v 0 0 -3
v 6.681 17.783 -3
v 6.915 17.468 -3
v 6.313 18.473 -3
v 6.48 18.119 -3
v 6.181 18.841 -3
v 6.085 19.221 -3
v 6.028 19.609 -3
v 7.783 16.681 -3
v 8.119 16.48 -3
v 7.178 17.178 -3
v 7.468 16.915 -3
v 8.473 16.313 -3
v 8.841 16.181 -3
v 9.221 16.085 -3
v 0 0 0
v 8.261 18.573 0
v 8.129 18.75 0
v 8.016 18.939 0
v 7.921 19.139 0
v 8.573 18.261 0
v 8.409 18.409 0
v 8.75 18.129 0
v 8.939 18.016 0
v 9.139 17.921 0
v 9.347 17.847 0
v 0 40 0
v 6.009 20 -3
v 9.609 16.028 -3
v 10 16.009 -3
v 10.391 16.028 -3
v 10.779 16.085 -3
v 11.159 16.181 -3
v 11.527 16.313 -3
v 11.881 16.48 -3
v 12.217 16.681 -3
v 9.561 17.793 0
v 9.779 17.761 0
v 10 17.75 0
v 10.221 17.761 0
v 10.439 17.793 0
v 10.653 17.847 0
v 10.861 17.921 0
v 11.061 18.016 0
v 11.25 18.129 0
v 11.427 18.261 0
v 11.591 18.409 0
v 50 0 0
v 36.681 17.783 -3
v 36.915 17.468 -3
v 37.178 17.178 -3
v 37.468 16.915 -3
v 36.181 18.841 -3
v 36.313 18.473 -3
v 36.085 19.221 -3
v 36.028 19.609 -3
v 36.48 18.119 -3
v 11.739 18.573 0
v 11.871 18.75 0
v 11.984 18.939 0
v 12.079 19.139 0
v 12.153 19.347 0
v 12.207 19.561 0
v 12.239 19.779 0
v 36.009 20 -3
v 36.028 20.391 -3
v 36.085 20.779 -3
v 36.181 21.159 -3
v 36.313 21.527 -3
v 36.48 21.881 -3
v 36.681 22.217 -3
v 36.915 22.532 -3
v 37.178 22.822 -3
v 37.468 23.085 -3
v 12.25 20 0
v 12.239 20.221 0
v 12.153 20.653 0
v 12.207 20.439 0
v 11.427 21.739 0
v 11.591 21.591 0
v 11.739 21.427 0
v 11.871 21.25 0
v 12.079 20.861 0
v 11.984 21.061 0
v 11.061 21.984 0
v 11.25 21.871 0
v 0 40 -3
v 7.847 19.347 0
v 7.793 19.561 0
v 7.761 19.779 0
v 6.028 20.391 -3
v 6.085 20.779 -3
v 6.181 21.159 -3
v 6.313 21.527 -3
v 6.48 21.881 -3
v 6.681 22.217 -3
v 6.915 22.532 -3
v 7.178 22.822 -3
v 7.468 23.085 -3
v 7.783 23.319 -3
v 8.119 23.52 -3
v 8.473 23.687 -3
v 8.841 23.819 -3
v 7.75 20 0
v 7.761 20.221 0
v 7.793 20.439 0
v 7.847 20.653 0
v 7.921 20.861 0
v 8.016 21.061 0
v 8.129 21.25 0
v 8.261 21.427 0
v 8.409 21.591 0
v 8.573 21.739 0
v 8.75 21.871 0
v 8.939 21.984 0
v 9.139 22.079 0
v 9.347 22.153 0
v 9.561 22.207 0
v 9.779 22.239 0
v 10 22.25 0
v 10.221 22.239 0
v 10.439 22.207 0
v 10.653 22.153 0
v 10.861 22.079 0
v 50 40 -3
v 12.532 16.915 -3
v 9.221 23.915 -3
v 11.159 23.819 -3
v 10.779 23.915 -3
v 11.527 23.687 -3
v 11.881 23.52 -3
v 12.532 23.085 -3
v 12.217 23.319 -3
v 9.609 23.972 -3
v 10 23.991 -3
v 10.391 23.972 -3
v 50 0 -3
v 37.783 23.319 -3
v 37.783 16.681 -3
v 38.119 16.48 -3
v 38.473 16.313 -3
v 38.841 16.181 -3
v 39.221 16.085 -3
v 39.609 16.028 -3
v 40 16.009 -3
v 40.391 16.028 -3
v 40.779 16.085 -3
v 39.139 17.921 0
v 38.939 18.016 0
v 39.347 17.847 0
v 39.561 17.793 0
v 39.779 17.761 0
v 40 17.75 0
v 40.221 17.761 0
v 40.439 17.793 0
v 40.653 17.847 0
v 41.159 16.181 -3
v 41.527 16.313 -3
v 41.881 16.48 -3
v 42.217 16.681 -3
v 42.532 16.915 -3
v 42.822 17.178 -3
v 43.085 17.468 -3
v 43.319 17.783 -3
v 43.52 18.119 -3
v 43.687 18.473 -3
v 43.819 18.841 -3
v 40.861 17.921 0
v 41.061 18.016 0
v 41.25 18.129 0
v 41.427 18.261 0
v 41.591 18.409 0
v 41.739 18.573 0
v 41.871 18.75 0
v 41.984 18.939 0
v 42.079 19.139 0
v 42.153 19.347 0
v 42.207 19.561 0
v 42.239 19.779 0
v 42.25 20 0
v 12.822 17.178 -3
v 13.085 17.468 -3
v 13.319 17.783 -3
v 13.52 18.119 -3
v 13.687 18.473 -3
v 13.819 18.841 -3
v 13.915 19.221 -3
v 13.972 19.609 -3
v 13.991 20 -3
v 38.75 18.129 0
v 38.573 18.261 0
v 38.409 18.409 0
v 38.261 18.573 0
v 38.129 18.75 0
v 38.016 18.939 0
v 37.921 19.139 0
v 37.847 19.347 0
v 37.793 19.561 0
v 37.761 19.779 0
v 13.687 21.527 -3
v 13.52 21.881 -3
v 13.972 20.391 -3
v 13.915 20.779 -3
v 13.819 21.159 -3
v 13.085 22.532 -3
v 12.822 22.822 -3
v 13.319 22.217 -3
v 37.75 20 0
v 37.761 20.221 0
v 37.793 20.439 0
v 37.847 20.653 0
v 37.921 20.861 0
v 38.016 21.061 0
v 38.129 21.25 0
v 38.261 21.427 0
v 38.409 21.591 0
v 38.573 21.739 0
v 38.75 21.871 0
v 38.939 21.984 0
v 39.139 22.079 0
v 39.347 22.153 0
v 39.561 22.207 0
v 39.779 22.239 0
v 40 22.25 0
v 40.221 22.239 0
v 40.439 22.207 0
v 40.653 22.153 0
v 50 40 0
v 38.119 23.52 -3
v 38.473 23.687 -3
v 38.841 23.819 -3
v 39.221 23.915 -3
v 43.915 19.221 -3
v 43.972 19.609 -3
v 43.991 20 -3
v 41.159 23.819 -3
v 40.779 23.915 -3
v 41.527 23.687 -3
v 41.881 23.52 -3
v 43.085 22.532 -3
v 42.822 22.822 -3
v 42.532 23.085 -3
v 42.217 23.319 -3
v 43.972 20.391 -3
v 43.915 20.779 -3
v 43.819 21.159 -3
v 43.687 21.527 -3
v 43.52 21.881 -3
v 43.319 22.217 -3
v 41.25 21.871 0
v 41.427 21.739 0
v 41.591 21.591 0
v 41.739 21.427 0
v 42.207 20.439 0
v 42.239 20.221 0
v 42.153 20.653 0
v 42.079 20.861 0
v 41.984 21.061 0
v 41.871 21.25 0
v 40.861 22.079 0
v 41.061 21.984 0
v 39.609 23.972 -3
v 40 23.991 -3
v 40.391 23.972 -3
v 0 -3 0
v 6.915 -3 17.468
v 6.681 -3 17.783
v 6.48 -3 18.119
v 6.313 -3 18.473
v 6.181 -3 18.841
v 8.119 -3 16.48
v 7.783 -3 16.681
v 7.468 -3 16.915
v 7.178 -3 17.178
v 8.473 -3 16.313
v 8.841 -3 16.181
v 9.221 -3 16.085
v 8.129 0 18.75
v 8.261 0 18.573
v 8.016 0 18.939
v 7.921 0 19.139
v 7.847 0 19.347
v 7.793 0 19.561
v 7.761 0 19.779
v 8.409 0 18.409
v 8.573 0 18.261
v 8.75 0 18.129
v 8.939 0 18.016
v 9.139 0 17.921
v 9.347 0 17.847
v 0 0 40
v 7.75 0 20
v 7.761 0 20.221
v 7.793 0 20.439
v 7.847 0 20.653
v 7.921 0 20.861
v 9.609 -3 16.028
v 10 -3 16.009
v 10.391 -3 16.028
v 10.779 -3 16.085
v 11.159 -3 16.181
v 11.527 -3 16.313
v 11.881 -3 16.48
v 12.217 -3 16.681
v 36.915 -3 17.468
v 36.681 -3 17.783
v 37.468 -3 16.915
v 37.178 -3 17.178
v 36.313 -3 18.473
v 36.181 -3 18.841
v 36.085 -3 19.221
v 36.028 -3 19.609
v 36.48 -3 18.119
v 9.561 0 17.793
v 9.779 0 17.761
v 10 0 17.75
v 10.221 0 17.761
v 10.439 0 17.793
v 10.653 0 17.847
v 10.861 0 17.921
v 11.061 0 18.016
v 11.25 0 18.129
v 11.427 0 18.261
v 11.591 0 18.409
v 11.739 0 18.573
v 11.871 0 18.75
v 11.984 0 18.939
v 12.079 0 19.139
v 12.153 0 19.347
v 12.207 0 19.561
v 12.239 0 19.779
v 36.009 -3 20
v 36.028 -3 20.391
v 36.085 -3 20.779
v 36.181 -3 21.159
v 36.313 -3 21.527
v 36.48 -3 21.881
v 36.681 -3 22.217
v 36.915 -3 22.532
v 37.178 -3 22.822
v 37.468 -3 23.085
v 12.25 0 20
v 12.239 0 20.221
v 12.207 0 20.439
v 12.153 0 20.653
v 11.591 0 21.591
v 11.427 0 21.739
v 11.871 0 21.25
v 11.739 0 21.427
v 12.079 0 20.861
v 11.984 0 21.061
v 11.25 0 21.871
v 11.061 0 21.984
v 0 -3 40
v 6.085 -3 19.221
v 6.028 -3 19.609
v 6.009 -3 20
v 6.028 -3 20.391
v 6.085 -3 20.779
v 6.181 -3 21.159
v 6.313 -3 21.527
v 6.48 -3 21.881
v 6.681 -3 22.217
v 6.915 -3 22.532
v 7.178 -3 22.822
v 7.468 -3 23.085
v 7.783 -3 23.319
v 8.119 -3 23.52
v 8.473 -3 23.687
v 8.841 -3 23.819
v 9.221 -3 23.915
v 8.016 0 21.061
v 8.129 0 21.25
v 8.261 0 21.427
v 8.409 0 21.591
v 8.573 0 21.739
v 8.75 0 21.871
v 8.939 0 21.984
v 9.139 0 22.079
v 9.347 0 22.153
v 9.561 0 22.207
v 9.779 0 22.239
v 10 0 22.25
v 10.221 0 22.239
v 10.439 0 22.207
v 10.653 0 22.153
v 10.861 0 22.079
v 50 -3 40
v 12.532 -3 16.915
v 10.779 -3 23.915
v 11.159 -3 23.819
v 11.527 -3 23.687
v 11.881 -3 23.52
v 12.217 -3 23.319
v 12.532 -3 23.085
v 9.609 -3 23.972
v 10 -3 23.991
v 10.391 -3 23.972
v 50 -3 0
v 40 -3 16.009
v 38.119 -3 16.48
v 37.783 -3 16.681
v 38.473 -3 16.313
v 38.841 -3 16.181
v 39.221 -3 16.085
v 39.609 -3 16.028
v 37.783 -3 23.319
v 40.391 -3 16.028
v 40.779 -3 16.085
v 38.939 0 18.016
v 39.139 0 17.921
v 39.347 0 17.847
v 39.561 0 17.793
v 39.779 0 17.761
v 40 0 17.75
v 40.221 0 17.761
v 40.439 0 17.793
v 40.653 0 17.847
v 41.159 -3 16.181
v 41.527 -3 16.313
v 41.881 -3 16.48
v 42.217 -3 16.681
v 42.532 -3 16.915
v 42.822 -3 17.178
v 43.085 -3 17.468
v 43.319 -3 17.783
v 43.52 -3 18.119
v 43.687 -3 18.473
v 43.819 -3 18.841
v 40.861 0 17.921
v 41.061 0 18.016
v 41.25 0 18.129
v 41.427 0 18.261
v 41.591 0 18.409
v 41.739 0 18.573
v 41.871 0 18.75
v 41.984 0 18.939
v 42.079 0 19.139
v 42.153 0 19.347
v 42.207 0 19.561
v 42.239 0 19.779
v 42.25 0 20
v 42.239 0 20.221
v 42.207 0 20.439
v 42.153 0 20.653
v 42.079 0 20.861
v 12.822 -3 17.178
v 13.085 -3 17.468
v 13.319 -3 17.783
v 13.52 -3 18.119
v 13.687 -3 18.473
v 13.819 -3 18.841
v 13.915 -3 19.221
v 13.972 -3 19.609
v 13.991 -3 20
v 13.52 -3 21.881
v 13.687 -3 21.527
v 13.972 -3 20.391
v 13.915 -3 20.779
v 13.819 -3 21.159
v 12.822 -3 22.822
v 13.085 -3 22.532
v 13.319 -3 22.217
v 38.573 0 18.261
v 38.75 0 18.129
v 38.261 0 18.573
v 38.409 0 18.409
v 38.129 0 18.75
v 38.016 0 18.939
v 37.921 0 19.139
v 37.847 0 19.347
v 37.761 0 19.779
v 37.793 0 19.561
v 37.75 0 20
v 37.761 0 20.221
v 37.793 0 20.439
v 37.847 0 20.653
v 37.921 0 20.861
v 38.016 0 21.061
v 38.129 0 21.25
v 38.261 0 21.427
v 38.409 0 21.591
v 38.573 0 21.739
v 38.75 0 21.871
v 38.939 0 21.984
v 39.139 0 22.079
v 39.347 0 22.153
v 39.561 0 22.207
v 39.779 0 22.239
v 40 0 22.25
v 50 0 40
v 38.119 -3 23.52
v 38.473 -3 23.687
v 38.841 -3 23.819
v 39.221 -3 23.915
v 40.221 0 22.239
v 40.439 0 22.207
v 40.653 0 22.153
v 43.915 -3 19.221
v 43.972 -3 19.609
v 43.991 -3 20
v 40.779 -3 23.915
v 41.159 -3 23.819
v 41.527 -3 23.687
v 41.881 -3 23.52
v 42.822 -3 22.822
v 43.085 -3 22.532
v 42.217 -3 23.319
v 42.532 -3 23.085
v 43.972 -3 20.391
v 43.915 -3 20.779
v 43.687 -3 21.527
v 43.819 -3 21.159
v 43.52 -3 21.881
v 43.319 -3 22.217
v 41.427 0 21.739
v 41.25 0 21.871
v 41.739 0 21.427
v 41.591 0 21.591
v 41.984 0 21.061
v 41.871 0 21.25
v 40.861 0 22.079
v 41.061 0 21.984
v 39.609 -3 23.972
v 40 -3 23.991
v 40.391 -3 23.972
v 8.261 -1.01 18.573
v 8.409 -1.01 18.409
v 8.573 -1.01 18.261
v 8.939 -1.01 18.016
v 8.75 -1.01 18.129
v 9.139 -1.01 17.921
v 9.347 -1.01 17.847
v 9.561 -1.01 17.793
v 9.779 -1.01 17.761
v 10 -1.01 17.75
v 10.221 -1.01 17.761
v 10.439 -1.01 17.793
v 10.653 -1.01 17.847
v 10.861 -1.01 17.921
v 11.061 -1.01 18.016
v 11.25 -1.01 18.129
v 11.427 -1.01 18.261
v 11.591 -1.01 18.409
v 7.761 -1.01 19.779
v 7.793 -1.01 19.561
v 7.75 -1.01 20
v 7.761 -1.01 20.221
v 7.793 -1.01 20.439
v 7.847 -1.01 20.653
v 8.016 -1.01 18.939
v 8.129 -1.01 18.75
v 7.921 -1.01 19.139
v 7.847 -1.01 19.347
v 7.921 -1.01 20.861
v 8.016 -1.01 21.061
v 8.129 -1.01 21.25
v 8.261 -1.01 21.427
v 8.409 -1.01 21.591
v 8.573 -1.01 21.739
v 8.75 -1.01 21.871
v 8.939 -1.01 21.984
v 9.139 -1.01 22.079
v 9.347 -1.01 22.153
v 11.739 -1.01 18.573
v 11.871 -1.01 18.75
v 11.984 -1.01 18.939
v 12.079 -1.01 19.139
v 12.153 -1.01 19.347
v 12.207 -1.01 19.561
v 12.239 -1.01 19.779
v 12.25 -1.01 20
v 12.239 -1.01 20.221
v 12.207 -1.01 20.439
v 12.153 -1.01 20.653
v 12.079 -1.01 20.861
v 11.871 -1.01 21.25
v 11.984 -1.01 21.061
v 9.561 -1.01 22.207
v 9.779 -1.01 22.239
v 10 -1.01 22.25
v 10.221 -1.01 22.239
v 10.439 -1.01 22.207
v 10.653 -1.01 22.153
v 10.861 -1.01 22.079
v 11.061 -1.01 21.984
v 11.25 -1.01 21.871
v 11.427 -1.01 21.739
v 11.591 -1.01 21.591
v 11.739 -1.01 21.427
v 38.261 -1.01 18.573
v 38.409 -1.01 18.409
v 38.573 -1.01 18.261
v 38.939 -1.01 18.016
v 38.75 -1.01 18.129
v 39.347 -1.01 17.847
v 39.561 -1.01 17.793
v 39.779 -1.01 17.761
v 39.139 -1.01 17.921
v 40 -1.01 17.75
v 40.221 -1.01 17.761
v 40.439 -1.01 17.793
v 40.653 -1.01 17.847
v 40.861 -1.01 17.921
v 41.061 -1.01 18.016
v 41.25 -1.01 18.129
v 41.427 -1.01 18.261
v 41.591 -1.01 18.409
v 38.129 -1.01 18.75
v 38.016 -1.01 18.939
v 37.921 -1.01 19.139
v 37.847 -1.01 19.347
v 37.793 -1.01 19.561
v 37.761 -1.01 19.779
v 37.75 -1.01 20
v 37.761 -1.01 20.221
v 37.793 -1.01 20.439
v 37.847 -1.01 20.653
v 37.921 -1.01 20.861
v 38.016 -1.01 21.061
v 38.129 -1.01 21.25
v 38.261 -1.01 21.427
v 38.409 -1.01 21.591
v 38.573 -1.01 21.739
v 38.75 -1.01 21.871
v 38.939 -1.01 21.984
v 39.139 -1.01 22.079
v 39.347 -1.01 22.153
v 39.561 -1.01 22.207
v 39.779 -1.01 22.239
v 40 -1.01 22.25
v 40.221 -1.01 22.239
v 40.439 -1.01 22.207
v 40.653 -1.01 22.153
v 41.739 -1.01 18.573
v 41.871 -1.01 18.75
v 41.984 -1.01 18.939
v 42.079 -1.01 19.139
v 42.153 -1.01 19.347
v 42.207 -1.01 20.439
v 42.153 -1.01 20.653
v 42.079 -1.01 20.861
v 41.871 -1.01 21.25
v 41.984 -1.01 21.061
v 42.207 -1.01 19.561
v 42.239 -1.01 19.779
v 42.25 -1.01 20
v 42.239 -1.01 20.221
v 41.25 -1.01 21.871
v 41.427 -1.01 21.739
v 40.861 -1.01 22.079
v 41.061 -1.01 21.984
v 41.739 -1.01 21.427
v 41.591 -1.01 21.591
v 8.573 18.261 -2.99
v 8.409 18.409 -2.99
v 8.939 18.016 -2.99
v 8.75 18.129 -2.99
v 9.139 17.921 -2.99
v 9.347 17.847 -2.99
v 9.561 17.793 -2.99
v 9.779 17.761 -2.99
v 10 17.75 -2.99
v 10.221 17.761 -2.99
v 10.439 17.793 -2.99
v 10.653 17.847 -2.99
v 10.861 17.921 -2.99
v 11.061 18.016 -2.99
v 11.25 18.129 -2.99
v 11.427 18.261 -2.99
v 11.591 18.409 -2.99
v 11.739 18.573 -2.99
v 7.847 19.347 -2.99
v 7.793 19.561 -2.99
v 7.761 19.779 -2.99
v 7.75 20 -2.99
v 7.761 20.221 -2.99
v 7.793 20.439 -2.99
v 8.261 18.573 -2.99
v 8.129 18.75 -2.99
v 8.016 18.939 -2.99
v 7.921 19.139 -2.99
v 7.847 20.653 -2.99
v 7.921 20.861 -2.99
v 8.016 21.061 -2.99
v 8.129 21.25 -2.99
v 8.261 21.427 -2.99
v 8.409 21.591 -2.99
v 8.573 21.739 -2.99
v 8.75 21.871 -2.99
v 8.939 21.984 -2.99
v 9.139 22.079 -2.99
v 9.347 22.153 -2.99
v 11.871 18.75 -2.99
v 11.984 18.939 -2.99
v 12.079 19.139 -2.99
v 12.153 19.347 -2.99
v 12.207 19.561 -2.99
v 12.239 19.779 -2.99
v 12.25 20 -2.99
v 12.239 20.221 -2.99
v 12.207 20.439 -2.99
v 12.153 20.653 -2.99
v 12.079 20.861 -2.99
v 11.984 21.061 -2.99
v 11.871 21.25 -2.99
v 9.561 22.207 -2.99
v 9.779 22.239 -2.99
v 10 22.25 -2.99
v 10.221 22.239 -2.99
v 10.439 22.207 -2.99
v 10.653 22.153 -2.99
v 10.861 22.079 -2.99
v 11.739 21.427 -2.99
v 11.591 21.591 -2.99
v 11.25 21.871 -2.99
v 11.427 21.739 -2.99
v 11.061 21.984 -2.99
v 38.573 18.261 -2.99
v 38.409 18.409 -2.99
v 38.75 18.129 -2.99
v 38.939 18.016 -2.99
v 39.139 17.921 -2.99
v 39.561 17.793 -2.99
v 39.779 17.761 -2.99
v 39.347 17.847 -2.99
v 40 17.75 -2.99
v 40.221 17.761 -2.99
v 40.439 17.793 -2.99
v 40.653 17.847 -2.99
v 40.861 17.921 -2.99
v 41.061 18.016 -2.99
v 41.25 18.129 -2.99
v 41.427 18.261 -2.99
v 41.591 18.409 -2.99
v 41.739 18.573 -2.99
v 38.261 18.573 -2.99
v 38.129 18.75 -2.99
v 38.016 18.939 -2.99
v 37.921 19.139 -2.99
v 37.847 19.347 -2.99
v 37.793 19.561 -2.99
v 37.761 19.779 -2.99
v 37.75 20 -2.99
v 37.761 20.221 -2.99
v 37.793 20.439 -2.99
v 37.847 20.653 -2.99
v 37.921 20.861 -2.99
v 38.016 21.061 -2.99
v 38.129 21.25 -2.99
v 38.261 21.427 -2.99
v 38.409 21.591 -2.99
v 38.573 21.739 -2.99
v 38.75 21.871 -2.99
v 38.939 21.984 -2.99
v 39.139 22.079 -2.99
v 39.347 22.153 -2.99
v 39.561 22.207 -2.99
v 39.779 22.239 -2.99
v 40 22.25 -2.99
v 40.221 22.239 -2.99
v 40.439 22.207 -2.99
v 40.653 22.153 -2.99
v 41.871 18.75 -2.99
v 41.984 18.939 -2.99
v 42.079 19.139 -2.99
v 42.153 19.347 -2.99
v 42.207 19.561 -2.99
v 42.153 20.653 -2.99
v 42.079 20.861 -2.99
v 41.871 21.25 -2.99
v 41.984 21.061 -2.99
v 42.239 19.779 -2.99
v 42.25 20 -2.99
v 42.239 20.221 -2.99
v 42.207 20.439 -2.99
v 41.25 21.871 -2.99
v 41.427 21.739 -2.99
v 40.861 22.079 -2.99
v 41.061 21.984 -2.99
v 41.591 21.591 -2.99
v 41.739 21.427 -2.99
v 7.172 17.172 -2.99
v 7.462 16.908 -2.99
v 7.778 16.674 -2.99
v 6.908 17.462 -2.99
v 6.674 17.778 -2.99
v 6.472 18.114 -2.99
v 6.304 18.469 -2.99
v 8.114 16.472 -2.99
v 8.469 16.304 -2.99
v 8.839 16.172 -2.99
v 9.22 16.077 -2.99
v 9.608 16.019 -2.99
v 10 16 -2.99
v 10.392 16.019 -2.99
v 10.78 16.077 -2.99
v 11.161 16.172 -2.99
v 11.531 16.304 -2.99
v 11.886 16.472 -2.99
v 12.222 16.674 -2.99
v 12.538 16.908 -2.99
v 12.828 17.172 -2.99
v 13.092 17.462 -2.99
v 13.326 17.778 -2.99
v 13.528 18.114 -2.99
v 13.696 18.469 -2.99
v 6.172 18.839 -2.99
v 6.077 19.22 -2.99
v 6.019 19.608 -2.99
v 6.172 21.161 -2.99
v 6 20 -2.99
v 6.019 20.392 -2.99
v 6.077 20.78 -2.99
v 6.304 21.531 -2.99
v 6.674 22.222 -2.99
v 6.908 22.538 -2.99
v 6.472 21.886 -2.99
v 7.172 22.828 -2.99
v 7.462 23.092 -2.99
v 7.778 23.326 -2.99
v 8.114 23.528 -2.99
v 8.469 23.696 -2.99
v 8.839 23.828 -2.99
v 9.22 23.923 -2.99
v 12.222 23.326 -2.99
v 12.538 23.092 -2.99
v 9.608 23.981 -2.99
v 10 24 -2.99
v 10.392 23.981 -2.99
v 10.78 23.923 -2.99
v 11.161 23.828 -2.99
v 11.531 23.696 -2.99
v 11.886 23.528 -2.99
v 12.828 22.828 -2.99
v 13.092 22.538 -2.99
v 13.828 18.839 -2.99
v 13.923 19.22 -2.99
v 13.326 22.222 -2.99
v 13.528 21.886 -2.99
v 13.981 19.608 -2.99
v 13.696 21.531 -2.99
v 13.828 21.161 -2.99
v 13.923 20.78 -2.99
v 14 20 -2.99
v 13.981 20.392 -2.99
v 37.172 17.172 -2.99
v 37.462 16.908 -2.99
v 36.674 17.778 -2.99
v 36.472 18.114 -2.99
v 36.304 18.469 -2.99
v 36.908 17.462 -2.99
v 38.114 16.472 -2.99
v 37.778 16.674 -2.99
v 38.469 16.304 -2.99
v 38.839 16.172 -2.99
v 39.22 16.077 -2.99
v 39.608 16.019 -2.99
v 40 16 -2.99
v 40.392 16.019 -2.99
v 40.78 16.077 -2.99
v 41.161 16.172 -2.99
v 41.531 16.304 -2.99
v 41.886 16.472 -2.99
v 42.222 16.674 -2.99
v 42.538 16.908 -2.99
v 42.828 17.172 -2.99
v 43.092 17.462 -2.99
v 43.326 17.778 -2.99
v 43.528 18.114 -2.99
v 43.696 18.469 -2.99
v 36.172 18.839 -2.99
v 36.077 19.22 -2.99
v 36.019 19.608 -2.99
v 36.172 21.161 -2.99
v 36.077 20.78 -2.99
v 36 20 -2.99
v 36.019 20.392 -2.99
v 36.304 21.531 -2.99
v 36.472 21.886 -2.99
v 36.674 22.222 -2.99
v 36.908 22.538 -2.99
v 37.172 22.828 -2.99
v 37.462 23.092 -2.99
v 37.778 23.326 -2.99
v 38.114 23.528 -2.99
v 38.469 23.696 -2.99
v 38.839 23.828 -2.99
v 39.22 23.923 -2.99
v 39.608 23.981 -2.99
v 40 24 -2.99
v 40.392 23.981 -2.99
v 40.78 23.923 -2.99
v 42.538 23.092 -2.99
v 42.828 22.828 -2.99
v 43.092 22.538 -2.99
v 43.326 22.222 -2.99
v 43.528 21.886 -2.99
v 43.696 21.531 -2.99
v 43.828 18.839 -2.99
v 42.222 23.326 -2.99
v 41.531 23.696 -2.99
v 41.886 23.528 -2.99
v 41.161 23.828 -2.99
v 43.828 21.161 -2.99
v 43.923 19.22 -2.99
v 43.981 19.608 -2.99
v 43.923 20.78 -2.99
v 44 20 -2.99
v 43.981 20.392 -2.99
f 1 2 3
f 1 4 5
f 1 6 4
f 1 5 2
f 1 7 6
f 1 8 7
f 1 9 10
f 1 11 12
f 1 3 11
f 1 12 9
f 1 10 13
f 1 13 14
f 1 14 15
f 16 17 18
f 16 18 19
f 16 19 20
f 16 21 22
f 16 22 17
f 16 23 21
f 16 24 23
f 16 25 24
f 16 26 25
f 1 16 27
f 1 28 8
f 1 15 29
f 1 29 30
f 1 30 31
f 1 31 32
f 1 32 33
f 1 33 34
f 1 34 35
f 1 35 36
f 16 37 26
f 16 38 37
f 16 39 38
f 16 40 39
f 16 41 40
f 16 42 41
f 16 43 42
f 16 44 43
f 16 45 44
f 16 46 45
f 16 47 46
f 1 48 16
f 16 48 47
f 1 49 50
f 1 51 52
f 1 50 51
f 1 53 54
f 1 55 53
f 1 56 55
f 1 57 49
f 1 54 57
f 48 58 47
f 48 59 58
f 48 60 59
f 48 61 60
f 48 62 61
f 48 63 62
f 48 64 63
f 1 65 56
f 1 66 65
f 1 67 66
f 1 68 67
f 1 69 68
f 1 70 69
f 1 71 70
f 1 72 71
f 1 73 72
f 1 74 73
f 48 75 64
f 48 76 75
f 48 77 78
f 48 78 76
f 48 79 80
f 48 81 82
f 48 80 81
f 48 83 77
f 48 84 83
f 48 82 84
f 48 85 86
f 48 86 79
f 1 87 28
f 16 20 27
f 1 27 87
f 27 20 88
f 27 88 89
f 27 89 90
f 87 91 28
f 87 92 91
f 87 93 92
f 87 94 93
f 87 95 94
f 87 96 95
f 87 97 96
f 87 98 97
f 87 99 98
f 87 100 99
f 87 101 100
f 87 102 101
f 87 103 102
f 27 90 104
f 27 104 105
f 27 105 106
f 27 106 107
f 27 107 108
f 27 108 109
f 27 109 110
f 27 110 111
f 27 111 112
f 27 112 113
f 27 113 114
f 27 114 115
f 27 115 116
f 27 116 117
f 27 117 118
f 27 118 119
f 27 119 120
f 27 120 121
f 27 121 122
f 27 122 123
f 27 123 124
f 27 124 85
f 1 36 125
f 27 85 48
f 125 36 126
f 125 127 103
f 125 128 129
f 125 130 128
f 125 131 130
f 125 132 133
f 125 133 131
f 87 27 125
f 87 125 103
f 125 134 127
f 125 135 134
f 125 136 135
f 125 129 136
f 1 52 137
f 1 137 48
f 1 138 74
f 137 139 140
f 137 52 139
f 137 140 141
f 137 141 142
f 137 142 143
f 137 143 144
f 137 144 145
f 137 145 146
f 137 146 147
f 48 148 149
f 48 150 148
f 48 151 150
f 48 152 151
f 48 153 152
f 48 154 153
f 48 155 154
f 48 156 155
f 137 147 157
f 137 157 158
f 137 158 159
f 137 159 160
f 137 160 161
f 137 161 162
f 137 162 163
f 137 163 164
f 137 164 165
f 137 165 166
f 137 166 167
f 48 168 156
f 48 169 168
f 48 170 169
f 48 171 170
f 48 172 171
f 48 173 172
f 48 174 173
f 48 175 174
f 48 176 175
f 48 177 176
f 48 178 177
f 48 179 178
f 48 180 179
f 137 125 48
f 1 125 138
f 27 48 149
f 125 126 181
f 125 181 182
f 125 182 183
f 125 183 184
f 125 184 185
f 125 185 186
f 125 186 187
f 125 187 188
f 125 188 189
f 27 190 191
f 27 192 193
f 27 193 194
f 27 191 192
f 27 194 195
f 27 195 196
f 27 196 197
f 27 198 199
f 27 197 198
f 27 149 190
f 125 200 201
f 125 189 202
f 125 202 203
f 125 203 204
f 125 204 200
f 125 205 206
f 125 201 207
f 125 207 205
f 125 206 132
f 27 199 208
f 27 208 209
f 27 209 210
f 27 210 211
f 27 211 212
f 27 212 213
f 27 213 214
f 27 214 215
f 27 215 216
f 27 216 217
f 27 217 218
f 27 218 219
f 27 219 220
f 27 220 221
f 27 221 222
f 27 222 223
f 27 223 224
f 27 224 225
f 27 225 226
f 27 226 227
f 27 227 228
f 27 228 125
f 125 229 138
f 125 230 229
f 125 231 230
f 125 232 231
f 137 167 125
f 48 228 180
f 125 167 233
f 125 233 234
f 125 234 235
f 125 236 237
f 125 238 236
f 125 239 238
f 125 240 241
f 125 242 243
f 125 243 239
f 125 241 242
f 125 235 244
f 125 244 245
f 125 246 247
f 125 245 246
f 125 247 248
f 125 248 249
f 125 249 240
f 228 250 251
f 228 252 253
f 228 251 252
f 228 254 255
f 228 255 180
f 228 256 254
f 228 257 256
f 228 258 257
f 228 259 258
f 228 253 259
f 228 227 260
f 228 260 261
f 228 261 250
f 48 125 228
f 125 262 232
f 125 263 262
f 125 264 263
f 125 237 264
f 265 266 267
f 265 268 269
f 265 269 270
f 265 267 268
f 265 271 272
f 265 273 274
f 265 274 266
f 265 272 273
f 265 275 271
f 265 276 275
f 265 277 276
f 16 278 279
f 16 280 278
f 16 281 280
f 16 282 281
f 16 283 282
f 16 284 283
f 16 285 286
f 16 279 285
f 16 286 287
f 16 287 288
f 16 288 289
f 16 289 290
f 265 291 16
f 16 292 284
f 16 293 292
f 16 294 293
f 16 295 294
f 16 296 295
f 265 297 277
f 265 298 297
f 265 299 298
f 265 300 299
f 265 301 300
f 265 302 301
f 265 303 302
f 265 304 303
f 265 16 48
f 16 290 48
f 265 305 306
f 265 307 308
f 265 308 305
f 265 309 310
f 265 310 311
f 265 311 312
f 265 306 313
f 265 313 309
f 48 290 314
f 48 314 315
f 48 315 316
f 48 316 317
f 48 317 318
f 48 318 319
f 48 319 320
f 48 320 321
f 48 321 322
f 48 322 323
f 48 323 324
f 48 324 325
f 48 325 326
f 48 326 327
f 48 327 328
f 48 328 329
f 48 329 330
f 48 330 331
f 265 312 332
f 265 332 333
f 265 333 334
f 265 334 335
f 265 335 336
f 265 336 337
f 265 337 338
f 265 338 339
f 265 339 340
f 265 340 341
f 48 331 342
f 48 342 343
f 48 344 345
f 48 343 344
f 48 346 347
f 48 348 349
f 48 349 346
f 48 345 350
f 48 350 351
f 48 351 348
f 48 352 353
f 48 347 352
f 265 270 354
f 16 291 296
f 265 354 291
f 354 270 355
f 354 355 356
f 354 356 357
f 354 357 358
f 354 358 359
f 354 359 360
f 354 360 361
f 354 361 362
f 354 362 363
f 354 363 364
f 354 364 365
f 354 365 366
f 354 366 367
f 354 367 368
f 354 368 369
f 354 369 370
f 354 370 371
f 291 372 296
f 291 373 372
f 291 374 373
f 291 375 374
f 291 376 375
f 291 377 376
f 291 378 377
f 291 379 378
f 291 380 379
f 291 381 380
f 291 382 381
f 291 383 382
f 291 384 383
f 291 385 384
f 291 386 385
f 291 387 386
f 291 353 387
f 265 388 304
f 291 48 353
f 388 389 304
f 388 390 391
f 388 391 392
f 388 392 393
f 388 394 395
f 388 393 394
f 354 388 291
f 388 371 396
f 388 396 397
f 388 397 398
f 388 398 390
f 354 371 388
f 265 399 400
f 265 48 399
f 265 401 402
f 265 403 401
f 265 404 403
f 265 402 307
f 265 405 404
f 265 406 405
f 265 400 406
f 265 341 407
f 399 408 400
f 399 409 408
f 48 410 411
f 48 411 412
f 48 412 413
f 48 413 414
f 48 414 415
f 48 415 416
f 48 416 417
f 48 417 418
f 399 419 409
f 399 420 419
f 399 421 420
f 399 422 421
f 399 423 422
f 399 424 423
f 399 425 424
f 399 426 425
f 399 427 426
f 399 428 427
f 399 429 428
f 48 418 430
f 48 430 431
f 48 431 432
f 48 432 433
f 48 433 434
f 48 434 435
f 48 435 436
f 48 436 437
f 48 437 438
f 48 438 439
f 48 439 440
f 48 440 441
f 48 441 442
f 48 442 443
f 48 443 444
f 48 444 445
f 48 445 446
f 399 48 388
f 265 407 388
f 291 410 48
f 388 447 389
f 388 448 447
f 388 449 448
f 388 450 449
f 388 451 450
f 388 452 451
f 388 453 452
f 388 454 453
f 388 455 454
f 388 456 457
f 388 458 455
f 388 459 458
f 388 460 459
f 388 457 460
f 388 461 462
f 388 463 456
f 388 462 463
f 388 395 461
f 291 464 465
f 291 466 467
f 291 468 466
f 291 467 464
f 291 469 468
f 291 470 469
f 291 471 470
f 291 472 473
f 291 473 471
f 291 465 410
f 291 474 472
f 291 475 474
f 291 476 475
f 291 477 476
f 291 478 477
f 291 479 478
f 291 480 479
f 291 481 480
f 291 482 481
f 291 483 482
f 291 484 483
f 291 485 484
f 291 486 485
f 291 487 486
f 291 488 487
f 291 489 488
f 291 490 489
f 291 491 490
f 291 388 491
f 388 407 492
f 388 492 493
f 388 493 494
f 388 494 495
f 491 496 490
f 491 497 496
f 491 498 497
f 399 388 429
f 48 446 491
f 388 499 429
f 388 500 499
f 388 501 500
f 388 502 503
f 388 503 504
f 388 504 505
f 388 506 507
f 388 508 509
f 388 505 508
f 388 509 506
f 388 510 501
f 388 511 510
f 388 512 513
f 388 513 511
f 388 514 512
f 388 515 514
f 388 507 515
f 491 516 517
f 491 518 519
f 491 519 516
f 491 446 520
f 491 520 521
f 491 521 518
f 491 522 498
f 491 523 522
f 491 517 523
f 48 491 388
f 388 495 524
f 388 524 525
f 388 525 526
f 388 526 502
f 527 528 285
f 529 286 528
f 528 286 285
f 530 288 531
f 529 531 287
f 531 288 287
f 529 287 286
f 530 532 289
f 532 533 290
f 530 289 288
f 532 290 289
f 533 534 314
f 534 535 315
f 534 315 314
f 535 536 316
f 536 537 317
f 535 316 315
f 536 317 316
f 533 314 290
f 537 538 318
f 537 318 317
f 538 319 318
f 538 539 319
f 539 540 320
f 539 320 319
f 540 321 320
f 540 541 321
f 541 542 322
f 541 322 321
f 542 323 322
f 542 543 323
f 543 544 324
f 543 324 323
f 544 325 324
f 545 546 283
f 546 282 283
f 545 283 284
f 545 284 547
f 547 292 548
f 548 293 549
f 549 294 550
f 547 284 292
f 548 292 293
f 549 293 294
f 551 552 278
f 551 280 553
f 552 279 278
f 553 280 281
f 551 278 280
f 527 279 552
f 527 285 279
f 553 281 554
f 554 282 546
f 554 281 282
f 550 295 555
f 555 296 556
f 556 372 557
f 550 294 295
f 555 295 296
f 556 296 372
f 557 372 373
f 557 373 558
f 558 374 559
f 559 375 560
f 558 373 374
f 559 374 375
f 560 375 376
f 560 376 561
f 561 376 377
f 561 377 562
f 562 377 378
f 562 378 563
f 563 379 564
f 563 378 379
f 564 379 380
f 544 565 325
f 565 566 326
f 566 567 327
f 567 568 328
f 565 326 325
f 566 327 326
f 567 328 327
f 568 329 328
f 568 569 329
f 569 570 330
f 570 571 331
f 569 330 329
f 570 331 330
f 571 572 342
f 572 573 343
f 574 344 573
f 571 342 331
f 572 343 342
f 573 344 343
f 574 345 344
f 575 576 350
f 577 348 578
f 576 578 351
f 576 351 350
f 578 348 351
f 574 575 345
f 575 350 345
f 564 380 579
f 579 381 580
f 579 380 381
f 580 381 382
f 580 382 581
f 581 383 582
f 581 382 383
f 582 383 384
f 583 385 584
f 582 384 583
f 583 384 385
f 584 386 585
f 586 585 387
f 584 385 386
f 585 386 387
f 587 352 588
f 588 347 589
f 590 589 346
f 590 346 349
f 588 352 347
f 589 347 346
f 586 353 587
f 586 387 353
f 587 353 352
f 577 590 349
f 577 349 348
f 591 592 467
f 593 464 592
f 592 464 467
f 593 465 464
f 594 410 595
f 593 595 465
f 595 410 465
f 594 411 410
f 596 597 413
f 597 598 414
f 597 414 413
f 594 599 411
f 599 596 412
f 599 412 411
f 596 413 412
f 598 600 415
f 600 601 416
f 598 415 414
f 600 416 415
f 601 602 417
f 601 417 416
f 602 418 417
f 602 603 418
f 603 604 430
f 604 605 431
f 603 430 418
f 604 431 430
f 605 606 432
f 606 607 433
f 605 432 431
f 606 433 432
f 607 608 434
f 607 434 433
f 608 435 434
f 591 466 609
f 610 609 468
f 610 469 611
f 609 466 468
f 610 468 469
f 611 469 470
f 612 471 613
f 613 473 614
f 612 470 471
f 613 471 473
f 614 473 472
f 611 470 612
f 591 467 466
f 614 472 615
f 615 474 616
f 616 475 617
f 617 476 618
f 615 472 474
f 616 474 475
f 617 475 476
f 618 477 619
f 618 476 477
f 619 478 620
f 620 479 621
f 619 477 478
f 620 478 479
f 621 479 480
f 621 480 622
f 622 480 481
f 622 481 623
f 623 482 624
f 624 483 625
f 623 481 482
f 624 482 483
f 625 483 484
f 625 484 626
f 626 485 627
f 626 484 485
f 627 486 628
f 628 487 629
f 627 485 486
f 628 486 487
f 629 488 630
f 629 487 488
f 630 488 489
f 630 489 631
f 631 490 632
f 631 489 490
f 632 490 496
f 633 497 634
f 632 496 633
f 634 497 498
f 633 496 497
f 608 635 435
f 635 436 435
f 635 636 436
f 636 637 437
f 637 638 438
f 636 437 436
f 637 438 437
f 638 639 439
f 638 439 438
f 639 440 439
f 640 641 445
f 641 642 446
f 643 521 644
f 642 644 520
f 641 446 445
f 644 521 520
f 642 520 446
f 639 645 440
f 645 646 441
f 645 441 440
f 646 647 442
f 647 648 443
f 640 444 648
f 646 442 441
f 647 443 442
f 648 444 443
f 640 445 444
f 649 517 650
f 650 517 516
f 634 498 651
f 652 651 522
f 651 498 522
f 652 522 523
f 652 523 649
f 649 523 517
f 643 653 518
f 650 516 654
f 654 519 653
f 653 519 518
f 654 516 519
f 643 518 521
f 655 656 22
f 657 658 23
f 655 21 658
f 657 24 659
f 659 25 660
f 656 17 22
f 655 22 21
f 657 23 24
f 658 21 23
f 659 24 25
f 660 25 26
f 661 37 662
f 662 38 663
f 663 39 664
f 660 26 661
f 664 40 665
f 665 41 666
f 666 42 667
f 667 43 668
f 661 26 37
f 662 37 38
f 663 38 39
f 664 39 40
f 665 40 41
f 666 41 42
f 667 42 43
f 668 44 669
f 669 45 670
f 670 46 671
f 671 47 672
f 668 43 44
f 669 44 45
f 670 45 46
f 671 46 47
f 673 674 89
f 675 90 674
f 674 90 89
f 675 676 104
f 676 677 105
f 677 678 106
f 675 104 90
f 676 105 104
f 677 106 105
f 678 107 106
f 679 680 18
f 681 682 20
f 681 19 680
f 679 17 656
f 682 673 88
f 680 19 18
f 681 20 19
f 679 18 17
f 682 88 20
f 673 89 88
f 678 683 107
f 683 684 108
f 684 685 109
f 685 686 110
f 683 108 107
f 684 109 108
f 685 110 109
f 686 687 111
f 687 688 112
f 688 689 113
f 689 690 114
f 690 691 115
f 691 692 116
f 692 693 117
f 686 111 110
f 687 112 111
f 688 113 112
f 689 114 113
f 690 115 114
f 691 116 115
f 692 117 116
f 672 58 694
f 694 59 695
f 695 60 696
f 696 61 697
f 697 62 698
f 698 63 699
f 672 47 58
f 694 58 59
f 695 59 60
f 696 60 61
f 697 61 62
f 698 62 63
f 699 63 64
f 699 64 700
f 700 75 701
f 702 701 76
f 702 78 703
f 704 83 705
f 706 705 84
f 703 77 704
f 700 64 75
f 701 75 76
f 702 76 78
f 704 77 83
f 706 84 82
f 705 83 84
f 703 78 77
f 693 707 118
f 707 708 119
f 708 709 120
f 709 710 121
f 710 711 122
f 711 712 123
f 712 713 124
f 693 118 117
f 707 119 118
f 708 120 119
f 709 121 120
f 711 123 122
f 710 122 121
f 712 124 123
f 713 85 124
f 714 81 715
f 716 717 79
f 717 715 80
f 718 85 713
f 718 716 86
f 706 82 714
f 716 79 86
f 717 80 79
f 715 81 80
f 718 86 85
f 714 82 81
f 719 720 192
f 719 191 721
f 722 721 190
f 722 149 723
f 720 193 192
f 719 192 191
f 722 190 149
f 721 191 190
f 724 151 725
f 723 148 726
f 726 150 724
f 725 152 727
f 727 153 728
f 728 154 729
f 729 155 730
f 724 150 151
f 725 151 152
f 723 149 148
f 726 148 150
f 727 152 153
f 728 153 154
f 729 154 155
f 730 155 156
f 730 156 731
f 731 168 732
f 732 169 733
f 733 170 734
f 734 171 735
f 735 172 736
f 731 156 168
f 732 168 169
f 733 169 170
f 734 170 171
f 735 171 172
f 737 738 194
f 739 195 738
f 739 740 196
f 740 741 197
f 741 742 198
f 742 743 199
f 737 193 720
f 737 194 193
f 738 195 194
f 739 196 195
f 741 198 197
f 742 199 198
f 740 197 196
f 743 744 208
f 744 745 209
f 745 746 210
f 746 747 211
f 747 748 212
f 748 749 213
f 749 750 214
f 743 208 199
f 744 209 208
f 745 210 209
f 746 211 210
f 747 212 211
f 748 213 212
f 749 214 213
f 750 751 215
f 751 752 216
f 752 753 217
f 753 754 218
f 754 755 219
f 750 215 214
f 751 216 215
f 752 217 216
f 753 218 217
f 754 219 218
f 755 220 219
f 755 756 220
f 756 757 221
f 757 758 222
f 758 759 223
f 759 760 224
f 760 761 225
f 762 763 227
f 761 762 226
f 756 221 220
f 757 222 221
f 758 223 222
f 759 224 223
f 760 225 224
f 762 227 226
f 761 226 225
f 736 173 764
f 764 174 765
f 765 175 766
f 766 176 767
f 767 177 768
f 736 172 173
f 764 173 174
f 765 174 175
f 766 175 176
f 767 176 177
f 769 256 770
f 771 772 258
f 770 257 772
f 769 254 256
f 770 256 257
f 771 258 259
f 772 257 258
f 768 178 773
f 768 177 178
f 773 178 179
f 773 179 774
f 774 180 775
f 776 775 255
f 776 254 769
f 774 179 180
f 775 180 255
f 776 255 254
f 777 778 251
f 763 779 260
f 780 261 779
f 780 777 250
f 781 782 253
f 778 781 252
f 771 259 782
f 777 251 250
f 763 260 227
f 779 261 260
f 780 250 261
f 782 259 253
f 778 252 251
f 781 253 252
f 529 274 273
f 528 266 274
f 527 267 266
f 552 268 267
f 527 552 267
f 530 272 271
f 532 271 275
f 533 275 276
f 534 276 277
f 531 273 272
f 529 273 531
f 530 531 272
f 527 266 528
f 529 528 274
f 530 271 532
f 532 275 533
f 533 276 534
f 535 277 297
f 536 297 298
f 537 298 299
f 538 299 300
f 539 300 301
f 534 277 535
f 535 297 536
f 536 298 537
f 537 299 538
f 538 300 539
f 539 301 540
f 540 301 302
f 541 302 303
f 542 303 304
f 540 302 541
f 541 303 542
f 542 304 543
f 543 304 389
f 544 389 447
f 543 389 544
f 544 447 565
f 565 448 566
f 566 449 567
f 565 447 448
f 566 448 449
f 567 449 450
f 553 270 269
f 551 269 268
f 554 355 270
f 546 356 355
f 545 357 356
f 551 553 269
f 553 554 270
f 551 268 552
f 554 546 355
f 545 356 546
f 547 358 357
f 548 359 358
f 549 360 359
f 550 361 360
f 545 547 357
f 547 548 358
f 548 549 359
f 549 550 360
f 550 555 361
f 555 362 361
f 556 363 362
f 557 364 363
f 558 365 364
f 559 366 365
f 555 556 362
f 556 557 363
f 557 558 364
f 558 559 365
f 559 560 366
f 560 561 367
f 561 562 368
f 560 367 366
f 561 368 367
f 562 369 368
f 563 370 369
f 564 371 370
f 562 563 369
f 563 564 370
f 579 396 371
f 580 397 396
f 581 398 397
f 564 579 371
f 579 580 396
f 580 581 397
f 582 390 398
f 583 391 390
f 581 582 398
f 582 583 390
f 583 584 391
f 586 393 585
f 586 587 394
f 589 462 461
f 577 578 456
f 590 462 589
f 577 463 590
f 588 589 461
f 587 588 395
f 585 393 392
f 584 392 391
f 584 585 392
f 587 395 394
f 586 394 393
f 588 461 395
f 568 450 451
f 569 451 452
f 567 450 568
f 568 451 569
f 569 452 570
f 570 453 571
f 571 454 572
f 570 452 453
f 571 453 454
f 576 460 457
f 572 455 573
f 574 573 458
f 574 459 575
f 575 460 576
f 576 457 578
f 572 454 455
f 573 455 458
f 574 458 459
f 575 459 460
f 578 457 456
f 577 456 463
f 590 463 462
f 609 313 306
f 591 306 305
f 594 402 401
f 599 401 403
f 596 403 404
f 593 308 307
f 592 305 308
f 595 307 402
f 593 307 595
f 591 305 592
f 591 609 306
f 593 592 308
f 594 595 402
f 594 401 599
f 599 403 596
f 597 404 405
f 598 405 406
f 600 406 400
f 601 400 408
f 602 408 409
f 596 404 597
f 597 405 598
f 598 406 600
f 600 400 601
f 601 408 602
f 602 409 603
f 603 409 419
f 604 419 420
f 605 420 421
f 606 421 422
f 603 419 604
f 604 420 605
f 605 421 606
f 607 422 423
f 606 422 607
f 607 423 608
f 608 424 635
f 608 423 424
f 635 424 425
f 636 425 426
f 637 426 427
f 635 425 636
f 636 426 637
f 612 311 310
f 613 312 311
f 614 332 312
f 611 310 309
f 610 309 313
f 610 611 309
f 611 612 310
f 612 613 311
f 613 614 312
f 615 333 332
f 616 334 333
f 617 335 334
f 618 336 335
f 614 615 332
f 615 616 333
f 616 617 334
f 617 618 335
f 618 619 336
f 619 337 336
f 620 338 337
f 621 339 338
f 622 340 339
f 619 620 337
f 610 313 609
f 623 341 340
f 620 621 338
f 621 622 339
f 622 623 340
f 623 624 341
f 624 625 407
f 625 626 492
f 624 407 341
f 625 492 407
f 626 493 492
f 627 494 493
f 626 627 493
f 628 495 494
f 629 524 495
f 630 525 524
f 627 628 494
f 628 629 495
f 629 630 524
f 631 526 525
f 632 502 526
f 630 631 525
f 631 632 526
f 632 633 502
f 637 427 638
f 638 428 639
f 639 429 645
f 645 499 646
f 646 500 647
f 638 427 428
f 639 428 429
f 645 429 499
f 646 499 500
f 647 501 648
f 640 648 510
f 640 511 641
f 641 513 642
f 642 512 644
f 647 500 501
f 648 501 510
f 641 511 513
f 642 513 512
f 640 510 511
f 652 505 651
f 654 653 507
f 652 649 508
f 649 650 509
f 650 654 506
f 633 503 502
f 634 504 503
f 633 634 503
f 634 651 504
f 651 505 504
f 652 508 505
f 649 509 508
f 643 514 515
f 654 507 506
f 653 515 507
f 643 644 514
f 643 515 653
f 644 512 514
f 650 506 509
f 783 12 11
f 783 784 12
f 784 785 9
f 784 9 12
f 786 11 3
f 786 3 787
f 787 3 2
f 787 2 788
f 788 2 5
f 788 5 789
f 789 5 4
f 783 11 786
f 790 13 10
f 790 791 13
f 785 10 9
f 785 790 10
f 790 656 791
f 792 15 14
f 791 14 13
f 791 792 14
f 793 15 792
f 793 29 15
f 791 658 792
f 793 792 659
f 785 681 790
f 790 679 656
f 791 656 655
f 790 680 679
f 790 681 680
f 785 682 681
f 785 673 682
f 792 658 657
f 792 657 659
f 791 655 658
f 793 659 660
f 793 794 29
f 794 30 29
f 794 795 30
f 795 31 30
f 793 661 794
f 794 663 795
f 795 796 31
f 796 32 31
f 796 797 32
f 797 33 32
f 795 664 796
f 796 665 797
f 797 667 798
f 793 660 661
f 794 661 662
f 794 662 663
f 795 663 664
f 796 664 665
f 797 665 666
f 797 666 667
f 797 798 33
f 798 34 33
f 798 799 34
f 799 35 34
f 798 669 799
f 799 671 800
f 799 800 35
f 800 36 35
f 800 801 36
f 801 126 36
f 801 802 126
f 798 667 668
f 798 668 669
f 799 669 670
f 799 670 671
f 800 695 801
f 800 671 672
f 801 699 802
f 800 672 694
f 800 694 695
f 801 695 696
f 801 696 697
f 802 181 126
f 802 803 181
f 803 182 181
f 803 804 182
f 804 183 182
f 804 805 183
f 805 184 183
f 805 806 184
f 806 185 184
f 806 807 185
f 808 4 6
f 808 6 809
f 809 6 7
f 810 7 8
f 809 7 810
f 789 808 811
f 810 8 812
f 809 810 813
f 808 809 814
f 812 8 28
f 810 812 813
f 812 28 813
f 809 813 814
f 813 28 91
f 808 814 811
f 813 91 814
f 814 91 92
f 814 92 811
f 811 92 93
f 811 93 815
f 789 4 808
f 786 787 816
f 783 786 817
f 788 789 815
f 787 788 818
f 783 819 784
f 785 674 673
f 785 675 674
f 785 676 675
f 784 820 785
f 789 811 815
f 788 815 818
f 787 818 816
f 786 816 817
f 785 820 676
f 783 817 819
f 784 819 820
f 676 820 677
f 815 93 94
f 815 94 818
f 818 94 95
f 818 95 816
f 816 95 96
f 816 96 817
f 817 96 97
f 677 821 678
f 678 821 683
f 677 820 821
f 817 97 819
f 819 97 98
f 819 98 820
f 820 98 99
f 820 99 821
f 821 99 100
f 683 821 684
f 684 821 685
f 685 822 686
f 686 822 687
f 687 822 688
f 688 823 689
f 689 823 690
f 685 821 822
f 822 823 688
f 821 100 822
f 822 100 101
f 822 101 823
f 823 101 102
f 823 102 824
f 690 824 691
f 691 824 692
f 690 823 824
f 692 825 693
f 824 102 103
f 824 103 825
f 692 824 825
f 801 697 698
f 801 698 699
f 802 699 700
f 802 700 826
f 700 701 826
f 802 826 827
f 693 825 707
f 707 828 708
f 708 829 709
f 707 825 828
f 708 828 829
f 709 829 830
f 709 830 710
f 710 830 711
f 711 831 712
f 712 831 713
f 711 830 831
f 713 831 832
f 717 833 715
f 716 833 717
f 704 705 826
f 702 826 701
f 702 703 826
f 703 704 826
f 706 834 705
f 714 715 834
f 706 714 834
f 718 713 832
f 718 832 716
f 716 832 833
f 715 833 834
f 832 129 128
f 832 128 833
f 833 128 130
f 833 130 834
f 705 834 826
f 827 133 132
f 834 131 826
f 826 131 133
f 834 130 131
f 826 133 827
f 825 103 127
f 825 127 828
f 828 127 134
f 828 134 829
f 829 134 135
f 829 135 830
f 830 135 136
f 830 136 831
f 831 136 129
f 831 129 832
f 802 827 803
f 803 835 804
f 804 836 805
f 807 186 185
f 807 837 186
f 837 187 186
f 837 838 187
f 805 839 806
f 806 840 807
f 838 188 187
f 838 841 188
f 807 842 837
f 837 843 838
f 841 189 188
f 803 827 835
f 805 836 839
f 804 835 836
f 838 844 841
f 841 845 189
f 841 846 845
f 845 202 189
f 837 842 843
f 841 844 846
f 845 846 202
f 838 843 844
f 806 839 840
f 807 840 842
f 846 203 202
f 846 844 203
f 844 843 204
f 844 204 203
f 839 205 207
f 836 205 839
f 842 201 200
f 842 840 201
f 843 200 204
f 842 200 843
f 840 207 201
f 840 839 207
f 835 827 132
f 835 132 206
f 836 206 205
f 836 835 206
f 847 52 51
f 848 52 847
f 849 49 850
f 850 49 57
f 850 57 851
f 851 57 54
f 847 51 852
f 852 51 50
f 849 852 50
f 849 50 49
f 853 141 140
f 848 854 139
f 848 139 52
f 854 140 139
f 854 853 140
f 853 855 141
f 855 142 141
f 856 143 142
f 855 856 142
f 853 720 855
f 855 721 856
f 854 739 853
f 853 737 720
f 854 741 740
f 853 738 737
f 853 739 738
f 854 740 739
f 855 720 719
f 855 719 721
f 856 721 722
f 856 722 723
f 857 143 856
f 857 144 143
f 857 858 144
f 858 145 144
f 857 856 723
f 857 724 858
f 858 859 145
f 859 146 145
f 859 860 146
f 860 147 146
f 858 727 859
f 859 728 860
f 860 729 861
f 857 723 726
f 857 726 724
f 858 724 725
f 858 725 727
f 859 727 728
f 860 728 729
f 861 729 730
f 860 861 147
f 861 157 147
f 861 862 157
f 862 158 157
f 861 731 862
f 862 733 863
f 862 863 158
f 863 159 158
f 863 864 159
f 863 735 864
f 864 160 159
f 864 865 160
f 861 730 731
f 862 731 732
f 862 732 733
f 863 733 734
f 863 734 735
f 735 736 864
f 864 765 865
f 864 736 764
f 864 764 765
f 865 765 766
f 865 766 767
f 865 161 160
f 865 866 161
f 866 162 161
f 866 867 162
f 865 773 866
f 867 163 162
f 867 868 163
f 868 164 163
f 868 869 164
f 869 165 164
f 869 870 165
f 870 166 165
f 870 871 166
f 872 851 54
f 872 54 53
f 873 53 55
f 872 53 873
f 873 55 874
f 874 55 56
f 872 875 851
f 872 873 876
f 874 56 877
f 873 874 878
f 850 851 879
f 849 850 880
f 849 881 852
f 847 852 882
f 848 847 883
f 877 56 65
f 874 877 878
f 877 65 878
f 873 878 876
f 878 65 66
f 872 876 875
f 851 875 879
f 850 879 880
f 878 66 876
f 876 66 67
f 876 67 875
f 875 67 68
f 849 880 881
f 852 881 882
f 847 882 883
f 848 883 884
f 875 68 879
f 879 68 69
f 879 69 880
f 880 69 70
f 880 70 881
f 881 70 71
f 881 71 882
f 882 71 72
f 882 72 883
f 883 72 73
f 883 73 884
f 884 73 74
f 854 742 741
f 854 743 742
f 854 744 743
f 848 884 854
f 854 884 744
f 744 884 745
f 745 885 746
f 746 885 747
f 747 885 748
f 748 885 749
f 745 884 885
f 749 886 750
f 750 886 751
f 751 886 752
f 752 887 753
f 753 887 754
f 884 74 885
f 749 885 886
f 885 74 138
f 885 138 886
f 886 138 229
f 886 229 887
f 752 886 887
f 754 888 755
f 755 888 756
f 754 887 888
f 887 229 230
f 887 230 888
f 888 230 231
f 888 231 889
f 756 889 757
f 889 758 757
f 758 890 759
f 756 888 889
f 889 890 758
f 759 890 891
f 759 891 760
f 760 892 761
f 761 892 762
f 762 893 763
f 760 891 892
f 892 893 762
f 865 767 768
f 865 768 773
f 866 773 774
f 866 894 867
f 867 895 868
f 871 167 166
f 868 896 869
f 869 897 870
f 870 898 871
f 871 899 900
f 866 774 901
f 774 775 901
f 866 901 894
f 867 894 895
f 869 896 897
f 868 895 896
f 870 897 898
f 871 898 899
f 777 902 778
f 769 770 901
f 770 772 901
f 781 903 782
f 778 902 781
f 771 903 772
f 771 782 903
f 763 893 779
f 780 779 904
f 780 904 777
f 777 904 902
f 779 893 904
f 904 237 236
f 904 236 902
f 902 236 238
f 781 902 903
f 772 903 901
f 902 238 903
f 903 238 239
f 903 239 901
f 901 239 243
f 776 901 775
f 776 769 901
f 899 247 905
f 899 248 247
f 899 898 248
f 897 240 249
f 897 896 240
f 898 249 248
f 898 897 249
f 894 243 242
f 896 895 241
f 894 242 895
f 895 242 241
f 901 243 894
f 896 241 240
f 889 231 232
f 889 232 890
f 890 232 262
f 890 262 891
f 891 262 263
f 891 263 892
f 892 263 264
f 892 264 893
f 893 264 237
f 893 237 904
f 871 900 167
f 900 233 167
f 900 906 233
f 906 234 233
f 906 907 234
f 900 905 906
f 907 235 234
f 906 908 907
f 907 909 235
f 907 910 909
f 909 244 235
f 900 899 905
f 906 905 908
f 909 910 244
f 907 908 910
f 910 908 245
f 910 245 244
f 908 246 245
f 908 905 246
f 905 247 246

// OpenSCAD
$fn = 64;

// L-bracket parameters
width = 50;
depth = 40;
height = 40;
thickness = 3;

// Hole parameters (M4 Countersunk)
hole_d = 4.5;
sink_d = 8;
sink_depth = 2;
hole_x_offset = 10; // distance from side edges

module countersunk_hole() {
    // Through hole
    cylinder(d = hole_d, h = thickness * 3, center = true);
    // Countersink (positioned to start from the surface)
    translate([0, 0, -0.01])
        cylinder(d1 = sink_d, d2 = hole_d, h = sink_depth);
}

difference() {
    // Main Body
    union() {
        // Horizontal flange (extends +Y, thickness goes to -Z)
        translate([0, 0, -thickness])
            cube([width, depth, thickness]);
        
        // Vertical flange (extends +Z, thickness goes to -Y)
        translate([0, -thickness, 0])
            cube([width, thickness, height]);
    }

    // Holes for Horizontal flange
    for (x = [hole_x_offset, width - hole_x_offset]) {
        translate([x, depth / 2, -thickness]) {
            rotate([180, 0, 0])
                countersunk_hole();
        }
    }

    // Holes for Vertical flange
    for (x = [hole_x_offset, width - hole_x_offset]) {
        translate([x, -thickness, height / 2]) {
            rotate([-90, 0, 0])
                countersunk_hole();
        }
    }
}
